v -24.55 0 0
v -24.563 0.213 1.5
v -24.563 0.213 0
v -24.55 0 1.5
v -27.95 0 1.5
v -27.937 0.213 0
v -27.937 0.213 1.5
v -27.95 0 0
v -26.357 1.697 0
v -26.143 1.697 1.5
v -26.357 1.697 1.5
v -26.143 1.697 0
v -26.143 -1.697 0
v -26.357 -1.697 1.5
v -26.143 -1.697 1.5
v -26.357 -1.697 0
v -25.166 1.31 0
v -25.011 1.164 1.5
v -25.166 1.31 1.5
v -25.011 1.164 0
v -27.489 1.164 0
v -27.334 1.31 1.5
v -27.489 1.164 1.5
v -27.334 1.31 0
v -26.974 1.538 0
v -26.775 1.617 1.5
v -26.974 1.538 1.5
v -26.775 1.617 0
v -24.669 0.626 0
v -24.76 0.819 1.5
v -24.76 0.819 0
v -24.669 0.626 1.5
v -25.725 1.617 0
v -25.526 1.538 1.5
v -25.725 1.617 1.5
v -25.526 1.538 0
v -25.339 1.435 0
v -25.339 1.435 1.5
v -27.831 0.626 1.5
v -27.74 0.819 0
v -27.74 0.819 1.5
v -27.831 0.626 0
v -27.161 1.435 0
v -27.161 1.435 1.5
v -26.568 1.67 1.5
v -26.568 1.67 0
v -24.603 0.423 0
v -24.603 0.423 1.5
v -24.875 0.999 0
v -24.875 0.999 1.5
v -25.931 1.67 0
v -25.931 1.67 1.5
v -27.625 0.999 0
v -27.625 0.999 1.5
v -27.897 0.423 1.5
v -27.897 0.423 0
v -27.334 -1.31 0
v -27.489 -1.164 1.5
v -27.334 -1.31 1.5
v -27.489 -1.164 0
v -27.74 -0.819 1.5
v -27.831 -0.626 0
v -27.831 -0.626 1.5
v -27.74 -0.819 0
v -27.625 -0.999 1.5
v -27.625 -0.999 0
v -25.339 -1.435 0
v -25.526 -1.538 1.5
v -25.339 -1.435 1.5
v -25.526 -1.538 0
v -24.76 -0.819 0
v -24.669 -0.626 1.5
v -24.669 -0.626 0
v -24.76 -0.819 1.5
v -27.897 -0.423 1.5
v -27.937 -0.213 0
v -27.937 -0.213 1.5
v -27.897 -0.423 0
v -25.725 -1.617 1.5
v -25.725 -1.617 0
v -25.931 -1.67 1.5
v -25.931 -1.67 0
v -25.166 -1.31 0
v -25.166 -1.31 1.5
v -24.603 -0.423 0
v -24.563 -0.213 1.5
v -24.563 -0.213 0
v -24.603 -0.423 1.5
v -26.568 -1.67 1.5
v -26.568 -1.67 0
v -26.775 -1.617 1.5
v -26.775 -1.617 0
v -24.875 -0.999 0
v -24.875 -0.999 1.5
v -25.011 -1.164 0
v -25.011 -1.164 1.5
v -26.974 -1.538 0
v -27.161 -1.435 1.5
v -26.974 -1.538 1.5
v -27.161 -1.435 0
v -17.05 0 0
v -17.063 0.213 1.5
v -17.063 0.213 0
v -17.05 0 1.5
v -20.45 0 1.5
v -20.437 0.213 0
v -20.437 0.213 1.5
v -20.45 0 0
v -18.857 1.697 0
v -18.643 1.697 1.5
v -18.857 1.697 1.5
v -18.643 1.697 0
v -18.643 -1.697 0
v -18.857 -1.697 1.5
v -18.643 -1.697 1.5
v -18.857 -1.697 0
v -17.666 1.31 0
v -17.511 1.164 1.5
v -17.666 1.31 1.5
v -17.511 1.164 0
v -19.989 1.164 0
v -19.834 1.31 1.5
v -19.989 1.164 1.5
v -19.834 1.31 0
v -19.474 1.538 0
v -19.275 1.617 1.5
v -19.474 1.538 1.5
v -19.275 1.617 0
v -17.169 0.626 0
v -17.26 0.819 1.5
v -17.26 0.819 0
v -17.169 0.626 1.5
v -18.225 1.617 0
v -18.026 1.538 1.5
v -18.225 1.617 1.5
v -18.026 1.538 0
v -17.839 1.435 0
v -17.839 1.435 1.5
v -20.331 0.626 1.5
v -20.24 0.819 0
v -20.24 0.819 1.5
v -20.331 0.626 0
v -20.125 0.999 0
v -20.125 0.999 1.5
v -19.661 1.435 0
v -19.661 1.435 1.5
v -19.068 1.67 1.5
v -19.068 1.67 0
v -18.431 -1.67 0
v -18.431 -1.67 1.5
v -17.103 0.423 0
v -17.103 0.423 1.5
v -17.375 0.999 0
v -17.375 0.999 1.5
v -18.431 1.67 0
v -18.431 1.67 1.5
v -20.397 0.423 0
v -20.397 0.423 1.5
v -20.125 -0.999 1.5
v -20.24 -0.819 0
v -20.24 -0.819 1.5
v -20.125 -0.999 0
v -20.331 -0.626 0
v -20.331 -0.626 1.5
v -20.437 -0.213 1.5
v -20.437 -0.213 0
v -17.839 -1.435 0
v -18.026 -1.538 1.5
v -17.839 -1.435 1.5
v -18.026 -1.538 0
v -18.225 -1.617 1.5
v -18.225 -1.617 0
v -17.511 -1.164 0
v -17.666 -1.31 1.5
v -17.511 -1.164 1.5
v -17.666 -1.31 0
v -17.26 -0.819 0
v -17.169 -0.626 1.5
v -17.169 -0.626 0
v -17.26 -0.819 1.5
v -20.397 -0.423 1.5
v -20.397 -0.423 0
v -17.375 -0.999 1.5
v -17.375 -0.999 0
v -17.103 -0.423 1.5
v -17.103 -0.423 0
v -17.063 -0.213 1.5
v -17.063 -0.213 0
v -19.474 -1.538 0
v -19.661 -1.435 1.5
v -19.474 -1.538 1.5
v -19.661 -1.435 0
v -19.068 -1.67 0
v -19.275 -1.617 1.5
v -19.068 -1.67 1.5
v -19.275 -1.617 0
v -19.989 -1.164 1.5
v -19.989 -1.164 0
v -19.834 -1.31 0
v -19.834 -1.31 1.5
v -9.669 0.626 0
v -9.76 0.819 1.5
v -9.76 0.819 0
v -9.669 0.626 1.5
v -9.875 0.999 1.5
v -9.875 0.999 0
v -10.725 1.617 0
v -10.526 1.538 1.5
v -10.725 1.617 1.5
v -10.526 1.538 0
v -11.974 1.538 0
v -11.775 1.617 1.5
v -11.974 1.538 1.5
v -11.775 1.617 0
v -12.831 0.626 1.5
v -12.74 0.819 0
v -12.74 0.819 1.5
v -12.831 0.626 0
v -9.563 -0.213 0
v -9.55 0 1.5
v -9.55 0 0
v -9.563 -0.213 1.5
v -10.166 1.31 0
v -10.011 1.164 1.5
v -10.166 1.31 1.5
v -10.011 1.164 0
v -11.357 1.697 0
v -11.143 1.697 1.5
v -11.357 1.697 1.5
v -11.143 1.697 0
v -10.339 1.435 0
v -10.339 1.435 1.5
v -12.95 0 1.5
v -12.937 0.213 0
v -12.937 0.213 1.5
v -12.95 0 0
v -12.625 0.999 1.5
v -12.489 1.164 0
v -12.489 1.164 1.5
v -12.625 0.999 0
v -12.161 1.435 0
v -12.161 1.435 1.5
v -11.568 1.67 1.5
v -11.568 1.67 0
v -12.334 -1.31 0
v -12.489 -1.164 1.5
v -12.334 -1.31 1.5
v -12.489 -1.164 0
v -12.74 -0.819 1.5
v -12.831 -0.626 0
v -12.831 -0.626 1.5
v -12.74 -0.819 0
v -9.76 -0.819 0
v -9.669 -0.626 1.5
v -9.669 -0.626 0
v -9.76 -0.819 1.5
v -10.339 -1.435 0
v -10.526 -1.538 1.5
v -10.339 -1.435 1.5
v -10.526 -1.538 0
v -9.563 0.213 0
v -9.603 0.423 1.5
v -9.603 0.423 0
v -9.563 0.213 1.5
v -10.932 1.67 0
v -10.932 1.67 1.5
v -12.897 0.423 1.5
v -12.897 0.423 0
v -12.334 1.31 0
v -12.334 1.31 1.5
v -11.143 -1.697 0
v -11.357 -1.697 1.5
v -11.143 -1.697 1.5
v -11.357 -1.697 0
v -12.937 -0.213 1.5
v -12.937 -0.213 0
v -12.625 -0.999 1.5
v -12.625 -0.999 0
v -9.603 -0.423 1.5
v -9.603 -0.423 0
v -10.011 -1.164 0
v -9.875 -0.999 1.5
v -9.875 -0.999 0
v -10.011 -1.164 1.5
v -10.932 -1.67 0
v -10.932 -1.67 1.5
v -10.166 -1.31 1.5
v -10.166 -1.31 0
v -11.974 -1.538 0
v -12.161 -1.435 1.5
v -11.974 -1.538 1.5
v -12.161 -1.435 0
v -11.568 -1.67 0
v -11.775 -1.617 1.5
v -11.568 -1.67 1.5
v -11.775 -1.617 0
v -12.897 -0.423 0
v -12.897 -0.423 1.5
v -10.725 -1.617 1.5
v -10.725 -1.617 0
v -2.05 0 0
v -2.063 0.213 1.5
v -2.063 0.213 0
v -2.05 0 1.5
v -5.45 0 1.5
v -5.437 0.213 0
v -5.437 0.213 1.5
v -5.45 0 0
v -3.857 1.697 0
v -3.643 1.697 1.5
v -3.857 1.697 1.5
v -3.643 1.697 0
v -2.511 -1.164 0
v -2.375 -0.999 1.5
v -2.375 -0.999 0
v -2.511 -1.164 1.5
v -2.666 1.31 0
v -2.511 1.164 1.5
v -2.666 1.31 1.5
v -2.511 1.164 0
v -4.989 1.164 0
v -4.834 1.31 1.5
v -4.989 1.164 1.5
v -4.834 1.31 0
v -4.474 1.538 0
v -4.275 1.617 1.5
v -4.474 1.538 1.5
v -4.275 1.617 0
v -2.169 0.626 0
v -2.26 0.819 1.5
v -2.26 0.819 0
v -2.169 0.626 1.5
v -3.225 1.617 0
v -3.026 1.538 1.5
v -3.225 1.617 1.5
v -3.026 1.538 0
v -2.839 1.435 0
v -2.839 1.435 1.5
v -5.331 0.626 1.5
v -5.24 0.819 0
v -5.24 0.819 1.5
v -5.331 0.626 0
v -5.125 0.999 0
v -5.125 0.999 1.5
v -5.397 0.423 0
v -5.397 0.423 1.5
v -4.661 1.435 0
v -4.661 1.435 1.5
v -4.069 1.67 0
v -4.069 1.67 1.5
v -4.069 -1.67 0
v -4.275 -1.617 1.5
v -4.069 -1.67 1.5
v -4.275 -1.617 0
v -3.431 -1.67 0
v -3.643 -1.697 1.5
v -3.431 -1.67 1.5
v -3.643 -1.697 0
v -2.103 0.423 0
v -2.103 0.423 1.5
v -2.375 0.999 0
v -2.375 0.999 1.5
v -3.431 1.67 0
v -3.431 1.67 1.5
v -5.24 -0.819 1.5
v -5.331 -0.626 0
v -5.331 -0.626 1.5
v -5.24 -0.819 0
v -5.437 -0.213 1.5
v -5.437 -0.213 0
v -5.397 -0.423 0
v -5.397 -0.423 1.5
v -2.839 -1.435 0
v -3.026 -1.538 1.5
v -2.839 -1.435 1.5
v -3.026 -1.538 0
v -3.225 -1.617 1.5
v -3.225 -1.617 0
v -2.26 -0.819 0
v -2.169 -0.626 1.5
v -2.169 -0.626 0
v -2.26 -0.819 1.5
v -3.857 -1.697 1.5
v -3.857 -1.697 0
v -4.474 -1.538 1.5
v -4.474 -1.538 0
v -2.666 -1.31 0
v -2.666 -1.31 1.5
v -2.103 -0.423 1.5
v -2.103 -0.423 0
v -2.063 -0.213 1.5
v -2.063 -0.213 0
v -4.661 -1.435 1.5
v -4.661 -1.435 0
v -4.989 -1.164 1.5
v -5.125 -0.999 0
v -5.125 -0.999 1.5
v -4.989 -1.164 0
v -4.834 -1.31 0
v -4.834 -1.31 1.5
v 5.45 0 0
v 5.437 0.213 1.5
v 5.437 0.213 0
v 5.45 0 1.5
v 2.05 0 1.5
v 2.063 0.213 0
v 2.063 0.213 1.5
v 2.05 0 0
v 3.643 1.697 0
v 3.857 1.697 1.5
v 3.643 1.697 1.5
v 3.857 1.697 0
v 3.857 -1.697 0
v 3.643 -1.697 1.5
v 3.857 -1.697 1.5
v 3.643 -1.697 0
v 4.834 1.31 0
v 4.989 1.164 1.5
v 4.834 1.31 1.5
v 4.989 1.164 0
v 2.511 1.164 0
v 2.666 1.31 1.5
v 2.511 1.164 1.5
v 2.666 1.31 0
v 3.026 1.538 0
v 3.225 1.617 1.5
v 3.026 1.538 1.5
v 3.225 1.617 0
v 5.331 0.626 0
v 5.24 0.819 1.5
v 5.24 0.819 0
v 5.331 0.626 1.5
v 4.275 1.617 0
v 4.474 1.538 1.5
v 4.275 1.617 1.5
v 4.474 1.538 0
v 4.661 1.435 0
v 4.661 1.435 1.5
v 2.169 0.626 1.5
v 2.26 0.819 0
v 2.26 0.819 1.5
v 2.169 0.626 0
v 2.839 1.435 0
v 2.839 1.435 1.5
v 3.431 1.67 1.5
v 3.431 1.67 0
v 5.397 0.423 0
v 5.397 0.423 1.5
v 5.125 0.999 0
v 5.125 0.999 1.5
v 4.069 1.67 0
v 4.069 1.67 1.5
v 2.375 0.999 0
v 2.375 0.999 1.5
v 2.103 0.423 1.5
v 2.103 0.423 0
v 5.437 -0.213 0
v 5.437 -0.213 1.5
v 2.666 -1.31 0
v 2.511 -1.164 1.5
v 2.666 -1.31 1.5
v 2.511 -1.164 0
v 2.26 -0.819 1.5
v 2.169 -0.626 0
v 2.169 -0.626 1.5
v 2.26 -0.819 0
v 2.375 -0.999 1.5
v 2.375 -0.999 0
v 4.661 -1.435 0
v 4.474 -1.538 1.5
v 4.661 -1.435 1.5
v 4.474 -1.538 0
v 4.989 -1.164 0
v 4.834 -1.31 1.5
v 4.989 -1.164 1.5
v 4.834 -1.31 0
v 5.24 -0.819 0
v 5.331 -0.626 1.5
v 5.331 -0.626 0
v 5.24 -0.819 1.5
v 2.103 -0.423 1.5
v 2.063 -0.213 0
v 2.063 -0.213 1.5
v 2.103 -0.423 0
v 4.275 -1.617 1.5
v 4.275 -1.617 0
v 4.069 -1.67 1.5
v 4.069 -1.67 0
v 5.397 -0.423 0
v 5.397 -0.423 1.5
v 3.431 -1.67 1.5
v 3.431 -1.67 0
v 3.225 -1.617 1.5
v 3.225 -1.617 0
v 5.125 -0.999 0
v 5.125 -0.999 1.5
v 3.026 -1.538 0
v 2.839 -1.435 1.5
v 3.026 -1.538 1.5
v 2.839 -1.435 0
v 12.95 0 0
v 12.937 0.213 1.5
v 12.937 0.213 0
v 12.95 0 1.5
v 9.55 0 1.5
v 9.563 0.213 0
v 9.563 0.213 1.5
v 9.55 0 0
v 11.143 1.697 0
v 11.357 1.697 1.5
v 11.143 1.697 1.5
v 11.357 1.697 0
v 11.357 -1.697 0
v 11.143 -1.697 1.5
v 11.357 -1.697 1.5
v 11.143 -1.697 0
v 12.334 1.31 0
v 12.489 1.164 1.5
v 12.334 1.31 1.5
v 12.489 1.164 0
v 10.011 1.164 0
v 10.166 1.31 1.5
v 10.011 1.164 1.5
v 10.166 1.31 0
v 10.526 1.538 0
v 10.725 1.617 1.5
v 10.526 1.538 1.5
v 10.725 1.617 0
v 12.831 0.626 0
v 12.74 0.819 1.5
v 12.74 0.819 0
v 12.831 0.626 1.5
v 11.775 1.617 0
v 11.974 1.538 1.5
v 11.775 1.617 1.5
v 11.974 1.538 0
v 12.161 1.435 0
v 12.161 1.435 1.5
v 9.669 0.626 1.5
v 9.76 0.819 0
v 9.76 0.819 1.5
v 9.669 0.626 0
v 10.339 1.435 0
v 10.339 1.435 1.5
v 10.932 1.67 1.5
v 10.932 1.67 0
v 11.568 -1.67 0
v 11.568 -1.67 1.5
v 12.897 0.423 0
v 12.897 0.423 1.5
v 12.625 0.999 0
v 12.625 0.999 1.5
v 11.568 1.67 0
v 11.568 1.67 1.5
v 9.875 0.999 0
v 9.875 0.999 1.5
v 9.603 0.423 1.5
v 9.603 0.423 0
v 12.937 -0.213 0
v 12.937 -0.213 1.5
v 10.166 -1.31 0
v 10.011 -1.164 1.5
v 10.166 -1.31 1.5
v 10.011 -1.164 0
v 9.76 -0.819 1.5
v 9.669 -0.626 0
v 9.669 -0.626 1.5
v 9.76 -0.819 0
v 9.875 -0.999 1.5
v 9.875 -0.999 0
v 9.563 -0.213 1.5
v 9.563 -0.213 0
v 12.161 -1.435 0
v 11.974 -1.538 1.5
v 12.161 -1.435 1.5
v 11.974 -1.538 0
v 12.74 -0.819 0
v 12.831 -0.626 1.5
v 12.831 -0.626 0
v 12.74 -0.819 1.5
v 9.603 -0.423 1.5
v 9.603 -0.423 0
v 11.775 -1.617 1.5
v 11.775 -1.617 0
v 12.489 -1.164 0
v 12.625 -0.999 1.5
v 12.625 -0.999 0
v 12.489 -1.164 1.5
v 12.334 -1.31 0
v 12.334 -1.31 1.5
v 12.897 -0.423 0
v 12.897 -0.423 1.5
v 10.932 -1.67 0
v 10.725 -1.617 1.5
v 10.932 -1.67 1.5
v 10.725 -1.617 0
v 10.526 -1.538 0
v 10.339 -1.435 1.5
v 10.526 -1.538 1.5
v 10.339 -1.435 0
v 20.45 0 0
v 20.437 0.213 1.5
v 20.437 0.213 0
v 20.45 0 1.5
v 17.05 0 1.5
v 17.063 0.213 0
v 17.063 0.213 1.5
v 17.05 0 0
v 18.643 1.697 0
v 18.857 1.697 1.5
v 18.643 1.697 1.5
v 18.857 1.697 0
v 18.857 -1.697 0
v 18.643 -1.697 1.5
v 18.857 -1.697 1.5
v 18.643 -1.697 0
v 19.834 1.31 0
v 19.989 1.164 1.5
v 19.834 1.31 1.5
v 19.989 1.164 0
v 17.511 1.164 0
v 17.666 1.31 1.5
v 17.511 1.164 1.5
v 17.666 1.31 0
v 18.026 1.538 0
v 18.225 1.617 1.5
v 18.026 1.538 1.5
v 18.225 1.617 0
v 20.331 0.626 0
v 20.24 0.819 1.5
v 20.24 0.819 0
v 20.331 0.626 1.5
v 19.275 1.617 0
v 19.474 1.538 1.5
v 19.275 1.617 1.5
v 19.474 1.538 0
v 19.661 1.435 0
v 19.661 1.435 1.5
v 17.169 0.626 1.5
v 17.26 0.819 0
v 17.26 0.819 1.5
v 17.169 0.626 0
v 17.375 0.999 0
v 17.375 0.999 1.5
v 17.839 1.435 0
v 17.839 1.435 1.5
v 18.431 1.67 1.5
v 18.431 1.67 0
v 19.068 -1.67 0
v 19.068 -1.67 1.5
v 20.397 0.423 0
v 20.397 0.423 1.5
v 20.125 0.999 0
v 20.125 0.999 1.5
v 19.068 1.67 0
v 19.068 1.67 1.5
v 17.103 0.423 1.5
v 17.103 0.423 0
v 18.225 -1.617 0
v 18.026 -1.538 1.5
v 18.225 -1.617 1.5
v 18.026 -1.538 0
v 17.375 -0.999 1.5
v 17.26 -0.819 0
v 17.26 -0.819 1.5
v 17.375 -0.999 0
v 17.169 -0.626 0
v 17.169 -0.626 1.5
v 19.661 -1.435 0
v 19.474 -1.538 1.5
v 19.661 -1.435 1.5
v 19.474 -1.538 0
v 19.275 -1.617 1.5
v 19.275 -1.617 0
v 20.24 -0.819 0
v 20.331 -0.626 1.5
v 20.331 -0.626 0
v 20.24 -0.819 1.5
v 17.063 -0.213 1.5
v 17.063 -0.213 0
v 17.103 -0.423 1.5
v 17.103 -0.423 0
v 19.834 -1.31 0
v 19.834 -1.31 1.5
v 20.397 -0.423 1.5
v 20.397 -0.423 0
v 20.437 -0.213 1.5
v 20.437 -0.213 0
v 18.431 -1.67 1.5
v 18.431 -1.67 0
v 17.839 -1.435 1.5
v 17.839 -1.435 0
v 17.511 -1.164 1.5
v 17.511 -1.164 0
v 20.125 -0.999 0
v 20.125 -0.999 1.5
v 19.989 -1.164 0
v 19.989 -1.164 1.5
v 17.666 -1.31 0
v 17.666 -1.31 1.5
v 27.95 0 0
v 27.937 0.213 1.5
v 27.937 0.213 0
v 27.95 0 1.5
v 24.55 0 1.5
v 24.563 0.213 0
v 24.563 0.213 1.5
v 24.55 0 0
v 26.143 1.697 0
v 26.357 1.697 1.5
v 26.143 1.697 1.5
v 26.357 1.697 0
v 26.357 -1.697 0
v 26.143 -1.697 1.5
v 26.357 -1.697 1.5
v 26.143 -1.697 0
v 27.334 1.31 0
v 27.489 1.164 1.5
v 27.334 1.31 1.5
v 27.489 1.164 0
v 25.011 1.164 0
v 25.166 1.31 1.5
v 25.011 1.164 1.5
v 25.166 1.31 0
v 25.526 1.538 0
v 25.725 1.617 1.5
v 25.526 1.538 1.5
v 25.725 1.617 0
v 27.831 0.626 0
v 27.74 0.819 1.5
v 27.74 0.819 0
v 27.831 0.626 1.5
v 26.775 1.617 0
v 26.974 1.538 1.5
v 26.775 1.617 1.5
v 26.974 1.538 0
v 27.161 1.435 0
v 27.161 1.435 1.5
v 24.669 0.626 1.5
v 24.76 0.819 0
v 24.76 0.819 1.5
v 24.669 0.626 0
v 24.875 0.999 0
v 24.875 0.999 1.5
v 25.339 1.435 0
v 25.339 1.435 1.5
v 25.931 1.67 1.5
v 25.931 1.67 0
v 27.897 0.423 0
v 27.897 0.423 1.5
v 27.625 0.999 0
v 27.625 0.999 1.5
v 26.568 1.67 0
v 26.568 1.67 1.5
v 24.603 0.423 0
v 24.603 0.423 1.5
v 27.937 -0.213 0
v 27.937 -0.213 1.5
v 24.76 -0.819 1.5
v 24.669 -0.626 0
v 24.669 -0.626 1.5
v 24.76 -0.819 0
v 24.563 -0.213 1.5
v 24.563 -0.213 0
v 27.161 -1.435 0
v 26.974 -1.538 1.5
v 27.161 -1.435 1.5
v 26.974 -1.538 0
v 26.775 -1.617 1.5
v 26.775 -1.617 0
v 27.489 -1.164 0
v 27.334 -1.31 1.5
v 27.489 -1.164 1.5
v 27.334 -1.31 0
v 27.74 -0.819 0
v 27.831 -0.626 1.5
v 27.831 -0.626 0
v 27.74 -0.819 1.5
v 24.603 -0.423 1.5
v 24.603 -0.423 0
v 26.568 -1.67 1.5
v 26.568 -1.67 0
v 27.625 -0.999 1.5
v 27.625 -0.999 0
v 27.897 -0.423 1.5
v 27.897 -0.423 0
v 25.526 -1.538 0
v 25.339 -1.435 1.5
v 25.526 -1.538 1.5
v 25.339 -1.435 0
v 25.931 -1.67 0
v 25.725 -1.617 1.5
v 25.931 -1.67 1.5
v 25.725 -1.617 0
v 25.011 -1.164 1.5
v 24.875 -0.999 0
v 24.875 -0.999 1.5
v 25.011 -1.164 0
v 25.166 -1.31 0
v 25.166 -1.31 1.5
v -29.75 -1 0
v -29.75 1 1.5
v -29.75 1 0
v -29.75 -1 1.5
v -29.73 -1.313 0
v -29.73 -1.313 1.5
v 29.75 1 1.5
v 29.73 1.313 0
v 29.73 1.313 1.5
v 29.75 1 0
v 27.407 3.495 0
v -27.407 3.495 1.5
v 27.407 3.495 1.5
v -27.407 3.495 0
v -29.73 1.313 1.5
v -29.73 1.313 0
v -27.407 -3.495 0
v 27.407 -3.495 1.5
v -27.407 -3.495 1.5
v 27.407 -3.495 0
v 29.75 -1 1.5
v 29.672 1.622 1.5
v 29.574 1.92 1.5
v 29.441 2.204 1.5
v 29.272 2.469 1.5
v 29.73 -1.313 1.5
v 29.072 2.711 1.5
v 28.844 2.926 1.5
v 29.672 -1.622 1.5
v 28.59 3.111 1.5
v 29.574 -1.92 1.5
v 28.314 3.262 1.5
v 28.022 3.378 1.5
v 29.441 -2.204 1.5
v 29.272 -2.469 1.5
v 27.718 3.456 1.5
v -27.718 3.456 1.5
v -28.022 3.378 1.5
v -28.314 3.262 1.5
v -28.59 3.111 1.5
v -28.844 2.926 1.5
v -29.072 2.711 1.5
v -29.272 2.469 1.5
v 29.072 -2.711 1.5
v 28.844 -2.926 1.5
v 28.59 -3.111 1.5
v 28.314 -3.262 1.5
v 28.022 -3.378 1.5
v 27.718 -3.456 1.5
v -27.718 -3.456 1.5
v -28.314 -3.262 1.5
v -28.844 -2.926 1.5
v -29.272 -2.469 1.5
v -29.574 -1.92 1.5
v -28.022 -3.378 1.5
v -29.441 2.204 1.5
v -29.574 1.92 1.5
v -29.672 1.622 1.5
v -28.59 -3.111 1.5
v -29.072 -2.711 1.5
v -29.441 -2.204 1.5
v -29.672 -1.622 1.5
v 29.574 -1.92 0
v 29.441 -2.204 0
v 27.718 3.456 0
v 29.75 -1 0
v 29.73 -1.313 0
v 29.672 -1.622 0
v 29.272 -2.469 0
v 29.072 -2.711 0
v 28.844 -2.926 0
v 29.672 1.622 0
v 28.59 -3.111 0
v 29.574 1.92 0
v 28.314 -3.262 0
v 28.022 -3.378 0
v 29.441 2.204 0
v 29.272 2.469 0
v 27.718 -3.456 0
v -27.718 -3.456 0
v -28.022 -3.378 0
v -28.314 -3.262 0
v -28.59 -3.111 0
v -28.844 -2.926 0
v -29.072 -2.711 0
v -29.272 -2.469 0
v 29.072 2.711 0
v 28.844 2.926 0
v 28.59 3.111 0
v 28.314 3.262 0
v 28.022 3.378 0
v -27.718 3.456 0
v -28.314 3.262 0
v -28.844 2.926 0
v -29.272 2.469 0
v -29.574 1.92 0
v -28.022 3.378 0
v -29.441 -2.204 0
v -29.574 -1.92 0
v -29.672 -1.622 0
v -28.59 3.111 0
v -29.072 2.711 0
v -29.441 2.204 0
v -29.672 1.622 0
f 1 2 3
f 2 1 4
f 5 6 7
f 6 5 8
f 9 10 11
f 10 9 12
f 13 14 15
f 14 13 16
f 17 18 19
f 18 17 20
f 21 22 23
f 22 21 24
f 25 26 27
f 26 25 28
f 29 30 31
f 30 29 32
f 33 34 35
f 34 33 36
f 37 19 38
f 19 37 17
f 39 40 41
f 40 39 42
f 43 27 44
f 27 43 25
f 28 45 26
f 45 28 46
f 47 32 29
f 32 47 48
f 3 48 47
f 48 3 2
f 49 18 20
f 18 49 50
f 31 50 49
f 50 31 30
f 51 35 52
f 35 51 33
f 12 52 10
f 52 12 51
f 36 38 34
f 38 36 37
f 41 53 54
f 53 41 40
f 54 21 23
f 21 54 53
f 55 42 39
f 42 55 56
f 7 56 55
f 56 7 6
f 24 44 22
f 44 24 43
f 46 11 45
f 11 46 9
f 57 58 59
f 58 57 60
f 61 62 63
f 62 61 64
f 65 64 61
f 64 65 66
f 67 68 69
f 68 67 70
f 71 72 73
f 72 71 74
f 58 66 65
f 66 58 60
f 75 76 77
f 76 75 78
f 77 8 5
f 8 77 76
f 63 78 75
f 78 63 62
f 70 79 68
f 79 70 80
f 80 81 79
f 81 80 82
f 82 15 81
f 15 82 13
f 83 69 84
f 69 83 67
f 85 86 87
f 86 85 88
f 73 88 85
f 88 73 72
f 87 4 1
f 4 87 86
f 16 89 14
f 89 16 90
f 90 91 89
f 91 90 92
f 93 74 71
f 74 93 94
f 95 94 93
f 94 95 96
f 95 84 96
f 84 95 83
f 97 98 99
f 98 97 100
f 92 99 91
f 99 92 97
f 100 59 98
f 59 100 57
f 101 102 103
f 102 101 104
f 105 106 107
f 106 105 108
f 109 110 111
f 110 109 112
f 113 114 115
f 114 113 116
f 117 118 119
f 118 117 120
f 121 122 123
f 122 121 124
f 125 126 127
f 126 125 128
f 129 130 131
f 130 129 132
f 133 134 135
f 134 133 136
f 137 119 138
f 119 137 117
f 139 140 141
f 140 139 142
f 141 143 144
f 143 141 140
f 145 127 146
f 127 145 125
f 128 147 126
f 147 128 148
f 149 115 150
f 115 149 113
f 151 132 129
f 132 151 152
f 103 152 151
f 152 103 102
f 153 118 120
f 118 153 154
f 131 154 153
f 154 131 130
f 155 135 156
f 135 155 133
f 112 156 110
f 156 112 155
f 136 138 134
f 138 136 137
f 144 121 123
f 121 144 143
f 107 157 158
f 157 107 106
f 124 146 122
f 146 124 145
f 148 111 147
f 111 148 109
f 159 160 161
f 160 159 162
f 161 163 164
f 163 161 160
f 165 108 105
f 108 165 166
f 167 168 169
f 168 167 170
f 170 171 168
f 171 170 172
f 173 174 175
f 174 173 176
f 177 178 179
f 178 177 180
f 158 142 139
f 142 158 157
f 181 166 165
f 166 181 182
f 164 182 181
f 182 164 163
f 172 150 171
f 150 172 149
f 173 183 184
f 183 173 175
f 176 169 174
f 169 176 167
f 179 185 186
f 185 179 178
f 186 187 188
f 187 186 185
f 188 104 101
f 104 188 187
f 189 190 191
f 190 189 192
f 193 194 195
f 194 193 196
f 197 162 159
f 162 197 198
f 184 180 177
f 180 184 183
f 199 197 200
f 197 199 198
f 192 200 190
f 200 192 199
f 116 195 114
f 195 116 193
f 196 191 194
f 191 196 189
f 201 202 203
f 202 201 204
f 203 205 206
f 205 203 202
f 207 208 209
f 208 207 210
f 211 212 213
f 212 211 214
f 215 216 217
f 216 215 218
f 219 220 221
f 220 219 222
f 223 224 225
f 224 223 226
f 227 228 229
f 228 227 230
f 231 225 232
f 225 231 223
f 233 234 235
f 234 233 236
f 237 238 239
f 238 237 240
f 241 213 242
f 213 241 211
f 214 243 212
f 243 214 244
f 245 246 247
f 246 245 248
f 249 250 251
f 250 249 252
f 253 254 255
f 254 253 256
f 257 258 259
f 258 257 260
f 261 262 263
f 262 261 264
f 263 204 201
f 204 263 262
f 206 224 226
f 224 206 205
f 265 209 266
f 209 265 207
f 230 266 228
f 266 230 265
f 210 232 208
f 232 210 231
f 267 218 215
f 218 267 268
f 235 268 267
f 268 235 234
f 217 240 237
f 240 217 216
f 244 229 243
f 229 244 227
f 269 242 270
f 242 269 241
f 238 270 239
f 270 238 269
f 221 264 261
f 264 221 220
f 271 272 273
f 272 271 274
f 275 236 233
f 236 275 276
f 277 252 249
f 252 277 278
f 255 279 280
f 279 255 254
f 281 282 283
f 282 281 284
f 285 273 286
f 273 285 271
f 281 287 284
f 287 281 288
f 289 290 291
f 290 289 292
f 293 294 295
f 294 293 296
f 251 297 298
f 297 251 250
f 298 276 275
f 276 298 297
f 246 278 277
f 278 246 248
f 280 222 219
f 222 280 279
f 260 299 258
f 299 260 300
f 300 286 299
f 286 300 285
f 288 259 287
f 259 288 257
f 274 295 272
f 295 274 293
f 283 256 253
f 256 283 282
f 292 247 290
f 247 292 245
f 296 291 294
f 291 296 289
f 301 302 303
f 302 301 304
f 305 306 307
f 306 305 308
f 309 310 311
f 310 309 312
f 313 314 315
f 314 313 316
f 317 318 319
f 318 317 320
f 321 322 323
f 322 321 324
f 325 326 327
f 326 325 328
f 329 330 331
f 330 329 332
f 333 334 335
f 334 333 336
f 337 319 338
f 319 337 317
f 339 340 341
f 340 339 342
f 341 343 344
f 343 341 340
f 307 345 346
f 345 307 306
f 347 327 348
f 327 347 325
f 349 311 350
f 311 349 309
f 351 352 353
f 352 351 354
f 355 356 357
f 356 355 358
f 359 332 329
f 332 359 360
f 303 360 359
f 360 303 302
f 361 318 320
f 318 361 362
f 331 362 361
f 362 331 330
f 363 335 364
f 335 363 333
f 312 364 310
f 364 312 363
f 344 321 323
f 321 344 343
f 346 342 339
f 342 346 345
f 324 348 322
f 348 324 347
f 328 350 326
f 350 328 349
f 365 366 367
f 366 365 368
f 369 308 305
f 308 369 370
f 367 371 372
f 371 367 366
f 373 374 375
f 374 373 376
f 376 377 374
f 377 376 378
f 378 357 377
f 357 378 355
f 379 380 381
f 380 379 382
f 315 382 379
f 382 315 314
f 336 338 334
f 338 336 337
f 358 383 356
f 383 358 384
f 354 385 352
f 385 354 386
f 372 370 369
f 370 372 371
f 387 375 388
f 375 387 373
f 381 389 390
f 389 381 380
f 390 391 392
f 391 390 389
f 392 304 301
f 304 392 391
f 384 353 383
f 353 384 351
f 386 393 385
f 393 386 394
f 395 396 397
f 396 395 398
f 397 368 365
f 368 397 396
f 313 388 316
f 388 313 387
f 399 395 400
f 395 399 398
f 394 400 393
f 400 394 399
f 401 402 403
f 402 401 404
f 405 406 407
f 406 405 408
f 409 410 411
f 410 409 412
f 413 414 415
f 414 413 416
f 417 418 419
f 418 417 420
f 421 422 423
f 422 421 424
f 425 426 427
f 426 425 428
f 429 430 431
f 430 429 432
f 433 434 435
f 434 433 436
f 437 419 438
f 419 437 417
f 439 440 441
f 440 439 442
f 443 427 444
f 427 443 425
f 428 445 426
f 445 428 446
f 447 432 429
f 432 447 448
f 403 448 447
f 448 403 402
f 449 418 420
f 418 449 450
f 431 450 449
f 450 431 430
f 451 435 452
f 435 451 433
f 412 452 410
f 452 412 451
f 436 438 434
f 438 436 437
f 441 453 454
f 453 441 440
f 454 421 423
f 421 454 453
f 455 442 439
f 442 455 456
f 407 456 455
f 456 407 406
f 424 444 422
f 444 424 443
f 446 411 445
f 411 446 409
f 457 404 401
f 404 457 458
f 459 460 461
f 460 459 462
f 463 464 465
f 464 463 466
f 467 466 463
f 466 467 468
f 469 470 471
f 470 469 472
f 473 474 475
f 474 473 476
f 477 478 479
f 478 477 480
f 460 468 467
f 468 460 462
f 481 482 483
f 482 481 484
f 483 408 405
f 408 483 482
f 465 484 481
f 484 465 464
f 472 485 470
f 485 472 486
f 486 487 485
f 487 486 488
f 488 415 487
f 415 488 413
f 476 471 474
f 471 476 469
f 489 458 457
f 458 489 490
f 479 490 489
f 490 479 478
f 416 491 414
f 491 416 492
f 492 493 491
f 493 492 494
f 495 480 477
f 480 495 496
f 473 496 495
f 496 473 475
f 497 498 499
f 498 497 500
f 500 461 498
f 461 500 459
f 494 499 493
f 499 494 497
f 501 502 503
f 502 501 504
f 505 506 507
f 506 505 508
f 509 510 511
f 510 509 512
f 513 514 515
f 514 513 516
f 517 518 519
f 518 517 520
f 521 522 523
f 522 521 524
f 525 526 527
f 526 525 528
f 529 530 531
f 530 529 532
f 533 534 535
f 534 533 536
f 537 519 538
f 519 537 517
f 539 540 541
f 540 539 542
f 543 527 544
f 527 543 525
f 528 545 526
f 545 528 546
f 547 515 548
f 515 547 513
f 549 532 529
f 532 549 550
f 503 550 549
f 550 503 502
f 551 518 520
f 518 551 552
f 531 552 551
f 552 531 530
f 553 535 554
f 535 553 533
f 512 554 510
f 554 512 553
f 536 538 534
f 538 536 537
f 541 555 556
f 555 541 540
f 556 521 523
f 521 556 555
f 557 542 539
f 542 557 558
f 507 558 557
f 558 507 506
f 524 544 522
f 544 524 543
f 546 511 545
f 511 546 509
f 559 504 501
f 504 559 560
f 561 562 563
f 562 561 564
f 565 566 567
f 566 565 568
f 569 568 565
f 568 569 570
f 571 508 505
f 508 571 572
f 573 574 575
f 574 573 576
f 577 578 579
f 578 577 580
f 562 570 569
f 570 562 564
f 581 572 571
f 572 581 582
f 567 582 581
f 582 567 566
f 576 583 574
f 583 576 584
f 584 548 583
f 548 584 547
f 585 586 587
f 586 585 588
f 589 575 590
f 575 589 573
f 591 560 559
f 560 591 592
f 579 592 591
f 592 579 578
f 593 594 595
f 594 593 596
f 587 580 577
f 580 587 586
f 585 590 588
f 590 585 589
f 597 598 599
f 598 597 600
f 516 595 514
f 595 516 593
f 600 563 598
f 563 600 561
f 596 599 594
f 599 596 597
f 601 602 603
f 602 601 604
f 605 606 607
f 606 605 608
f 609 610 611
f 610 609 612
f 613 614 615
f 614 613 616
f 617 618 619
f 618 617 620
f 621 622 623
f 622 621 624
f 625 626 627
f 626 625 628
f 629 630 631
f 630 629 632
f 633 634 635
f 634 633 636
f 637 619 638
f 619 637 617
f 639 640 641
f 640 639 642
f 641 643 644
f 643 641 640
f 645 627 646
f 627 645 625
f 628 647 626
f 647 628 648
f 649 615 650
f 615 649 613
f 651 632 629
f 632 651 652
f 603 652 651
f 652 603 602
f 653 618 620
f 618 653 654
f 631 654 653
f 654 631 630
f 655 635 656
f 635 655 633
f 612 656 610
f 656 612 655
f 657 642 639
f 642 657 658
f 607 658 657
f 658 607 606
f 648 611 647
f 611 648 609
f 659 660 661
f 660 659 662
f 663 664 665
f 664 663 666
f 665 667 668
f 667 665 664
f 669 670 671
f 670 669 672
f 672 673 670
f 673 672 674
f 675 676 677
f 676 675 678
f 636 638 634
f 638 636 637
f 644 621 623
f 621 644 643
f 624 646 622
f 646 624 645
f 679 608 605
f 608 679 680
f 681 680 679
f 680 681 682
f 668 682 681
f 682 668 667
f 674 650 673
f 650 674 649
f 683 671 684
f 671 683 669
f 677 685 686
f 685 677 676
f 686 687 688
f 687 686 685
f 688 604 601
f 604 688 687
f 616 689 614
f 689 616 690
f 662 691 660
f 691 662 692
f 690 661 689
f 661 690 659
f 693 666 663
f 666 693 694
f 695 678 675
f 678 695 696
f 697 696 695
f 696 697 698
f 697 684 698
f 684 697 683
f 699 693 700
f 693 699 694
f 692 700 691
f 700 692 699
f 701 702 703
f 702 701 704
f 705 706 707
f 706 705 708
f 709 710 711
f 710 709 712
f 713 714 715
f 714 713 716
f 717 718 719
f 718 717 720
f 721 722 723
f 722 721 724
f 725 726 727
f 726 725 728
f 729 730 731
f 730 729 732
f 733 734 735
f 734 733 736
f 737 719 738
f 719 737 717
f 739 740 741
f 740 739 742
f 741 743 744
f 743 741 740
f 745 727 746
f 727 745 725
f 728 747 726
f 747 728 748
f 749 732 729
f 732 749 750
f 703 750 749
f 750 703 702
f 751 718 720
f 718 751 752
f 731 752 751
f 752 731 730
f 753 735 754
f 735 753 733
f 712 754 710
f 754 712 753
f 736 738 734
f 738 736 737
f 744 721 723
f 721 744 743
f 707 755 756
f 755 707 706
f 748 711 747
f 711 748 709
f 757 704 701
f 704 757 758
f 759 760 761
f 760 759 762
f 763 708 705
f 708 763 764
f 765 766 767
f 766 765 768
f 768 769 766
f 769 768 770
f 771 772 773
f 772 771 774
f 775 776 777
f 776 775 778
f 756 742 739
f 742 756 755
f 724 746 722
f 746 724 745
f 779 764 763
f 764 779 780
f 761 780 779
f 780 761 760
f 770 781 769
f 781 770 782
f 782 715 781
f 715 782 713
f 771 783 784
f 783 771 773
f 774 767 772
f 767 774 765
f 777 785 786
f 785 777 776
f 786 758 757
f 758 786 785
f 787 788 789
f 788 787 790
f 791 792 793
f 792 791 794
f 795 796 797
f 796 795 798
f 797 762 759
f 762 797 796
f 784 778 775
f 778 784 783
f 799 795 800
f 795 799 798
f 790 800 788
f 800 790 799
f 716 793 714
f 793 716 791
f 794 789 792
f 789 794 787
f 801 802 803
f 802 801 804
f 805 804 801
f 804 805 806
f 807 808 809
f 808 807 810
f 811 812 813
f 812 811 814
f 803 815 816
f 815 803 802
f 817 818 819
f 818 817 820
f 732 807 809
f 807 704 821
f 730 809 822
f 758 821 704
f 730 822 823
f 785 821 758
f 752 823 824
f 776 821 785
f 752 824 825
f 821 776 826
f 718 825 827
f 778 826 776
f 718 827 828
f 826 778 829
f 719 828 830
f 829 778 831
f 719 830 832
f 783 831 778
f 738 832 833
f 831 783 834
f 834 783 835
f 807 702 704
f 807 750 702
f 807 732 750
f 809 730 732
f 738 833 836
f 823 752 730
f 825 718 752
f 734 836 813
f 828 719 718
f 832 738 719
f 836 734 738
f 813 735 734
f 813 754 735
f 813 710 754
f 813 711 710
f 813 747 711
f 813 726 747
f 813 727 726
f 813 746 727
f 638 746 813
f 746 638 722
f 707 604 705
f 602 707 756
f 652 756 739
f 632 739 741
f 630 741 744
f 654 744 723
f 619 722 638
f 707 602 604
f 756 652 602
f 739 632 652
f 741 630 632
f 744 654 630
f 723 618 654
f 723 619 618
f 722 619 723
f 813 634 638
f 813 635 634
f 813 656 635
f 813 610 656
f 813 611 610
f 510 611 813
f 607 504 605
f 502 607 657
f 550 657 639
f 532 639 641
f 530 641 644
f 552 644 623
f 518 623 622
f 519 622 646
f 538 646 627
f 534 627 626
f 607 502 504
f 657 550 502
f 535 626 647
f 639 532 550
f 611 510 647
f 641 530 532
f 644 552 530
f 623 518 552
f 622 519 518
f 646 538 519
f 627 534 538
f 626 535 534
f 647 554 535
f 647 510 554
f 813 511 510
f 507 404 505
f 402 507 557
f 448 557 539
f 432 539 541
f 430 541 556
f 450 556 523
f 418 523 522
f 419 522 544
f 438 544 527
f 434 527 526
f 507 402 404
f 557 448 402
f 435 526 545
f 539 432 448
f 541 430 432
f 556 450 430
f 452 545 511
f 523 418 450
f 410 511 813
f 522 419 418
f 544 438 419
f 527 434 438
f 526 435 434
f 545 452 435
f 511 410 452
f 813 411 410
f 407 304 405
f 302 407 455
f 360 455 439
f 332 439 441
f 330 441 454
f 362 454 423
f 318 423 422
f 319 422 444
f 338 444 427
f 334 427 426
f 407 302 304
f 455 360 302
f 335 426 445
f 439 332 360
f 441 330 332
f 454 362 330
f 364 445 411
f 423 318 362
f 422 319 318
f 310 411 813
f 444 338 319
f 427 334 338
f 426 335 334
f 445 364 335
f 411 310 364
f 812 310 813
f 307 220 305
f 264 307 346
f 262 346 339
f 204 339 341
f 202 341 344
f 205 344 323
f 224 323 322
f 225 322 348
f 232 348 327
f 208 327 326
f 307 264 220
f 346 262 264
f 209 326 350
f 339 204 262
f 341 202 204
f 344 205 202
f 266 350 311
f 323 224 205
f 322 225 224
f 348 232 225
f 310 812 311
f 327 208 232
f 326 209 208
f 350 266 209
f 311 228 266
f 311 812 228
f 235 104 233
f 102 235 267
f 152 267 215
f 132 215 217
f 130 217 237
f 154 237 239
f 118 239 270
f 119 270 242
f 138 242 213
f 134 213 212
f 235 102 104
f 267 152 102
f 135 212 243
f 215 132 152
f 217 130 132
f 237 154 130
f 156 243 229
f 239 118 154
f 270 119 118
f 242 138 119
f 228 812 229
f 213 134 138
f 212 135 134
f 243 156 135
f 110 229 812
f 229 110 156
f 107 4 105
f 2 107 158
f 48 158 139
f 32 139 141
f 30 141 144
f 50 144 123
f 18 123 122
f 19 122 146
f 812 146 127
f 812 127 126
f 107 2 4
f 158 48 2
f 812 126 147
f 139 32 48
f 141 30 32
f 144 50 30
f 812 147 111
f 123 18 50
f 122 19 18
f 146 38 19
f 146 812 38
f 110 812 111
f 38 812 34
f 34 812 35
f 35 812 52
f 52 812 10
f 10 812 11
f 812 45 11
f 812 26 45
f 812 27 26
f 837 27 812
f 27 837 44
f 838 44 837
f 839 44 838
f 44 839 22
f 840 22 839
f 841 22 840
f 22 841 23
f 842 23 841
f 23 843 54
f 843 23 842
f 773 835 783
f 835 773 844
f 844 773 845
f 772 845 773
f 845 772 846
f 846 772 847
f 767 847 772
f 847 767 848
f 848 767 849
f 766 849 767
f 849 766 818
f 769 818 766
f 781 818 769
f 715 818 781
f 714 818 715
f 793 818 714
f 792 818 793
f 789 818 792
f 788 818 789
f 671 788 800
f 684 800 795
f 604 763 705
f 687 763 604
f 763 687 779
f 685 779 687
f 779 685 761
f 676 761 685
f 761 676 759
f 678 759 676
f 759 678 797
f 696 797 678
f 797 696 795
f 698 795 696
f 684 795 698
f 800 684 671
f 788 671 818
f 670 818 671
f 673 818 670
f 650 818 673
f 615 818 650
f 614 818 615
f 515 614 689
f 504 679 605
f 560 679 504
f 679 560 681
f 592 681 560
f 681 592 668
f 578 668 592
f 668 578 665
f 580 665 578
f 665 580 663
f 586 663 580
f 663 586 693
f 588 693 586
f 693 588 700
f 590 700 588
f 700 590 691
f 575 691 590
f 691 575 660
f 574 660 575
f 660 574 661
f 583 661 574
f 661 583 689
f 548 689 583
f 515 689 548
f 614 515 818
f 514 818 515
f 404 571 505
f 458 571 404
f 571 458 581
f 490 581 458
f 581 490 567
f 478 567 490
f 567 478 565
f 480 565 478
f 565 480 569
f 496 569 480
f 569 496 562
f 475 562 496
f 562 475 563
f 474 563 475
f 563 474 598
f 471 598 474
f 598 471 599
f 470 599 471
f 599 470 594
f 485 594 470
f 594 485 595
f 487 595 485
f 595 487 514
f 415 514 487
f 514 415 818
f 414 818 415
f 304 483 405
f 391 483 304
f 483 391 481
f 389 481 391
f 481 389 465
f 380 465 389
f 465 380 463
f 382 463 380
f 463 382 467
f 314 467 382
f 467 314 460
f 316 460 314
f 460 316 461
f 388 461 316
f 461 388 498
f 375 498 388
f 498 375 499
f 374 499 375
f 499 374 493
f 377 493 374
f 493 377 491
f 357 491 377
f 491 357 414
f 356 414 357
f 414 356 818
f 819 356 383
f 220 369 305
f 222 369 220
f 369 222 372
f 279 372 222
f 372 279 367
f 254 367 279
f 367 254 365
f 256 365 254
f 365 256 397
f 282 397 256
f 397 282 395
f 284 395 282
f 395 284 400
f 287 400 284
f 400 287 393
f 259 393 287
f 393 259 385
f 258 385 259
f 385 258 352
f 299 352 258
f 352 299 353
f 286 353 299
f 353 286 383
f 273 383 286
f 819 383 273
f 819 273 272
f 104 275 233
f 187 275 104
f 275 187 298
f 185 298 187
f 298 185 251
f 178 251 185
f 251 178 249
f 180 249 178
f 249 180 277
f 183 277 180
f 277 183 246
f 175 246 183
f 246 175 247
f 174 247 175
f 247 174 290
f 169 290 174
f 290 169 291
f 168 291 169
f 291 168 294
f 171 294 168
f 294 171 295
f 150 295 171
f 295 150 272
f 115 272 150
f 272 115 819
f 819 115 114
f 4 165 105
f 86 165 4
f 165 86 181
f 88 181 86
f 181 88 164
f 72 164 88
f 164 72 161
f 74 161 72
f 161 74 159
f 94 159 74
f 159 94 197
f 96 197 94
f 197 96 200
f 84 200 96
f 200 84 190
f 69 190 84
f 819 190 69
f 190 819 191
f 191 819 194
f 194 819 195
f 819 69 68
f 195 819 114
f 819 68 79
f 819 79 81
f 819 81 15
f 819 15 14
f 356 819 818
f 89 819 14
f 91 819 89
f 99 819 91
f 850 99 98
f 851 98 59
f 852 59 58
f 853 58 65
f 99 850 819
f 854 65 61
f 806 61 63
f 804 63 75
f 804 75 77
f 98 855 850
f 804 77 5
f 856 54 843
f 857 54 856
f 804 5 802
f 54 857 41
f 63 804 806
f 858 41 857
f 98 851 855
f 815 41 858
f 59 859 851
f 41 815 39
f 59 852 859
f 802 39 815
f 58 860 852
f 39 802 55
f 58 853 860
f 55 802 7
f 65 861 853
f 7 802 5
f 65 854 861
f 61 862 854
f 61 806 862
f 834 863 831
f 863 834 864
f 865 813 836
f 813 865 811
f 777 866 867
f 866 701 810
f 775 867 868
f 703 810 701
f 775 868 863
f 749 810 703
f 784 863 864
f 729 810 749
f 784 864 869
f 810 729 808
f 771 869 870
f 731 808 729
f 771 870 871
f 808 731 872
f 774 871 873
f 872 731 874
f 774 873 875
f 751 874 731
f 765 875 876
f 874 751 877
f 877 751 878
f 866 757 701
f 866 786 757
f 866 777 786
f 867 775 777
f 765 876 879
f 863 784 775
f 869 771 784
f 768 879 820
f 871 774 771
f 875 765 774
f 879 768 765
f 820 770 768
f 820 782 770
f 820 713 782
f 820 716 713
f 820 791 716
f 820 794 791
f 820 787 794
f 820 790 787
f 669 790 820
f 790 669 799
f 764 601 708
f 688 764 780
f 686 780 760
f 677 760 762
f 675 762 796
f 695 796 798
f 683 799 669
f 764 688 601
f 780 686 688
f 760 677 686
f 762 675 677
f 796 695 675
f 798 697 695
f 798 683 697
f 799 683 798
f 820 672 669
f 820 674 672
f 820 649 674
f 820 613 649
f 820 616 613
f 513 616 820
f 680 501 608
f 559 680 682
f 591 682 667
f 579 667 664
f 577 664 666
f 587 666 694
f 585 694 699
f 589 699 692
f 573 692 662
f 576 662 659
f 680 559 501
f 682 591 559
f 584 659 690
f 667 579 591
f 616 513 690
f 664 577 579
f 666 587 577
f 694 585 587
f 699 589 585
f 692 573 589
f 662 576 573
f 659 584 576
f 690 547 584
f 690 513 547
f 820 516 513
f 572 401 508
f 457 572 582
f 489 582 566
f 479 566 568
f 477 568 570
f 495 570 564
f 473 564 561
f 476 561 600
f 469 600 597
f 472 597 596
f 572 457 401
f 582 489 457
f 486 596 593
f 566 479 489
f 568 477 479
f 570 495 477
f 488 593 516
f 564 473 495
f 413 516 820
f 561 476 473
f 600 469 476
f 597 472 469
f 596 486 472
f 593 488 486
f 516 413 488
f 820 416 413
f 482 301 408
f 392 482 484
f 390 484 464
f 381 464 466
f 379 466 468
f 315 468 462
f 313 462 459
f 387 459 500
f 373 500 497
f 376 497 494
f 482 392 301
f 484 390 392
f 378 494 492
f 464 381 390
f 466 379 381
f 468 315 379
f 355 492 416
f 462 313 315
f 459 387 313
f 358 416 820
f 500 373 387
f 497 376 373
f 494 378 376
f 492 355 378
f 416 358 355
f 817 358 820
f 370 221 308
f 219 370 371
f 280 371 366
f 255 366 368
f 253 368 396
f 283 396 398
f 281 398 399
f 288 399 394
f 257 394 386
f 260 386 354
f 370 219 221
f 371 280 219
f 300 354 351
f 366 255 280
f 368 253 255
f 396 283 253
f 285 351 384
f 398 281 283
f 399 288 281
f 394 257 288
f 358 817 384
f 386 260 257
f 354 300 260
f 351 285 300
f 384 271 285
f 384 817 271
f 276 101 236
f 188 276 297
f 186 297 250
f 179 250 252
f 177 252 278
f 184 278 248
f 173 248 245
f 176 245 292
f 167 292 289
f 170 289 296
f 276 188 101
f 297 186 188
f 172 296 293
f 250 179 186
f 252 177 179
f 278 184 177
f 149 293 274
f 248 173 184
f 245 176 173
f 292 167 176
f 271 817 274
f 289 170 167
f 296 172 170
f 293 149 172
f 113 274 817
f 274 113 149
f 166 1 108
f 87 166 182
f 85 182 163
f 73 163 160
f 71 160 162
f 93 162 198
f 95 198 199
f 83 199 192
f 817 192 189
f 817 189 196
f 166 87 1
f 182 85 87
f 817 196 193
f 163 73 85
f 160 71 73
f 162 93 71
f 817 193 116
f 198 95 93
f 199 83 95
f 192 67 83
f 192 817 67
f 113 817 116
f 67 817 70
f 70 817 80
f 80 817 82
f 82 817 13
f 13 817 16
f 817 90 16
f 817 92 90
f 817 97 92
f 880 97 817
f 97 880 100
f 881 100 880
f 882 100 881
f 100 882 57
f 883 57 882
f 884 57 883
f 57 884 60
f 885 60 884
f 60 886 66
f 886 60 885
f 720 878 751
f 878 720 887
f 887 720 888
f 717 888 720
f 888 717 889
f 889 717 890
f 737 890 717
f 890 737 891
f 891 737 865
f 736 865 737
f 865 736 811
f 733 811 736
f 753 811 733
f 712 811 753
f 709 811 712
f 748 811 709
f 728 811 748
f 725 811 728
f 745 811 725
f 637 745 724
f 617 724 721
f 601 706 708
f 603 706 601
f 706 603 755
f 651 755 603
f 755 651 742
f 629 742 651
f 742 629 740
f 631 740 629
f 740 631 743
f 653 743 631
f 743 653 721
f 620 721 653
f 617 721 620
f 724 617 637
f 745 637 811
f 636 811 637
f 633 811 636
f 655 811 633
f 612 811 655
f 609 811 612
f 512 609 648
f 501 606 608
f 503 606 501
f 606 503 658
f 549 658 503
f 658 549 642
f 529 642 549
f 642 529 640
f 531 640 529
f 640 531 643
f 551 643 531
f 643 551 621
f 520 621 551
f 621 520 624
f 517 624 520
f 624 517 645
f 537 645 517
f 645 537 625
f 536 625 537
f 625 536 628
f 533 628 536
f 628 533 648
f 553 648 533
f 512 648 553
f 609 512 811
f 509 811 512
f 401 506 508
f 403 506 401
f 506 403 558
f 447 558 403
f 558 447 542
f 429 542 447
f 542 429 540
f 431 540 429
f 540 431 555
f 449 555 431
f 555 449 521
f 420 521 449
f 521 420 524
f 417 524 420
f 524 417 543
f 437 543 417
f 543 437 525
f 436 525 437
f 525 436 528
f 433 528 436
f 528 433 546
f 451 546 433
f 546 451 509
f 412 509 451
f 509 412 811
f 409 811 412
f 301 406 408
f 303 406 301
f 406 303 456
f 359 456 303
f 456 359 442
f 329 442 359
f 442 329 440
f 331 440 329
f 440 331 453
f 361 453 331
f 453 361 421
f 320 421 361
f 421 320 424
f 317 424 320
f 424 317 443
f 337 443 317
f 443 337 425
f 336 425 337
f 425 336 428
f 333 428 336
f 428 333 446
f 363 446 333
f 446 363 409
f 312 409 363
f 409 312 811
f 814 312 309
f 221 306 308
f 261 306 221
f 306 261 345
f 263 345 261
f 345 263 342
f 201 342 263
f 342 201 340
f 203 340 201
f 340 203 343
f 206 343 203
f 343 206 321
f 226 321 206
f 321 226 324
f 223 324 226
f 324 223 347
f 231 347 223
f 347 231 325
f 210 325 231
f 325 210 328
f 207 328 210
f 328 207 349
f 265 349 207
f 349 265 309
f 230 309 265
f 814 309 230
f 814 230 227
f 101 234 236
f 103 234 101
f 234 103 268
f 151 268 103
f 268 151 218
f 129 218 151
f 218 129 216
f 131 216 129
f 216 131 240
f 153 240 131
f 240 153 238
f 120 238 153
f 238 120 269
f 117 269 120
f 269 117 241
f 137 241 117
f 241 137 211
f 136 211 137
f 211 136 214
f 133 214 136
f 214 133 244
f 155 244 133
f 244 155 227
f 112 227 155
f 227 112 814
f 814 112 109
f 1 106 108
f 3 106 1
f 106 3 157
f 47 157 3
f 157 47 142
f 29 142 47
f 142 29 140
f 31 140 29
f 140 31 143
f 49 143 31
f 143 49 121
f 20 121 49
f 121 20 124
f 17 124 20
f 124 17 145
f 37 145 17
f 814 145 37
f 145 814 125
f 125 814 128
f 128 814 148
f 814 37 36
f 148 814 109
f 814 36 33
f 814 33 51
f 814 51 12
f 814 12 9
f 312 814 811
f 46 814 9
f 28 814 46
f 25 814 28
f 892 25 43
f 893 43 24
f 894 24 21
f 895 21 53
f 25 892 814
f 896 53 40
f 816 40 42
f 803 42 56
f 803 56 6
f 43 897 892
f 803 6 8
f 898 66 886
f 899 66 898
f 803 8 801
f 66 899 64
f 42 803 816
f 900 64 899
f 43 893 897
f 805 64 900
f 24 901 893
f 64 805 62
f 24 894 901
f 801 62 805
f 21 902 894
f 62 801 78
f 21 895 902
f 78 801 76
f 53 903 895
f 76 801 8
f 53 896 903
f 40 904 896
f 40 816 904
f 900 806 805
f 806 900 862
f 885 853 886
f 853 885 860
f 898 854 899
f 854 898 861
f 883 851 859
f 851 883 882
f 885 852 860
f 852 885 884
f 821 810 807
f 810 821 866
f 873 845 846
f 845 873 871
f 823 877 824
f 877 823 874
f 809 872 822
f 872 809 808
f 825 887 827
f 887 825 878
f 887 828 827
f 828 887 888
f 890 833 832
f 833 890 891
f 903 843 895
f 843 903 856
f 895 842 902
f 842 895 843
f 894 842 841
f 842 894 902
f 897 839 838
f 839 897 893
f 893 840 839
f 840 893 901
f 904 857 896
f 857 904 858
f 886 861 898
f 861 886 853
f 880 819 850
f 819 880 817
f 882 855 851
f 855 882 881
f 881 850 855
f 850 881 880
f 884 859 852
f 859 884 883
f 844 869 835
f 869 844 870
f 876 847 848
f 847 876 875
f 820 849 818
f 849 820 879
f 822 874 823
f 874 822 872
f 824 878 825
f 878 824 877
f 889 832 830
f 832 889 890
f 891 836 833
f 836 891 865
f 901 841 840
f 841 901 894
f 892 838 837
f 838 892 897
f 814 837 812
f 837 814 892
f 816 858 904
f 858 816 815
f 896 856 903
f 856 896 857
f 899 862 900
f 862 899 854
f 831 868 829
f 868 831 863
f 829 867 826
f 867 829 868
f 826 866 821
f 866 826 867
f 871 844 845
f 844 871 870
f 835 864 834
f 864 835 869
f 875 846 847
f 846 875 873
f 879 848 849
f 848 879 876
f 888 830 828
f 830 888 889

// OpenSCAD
$fn = 50;


difference() {
	union() {
		translate(v = [0, 0, 0]) {
			rotate(a = [0, 0, 0]) {
				hull() {
					translate(v = [-27.2500000000, 1.0000000000, 0]) {
						rotate(a = [0, 0, 0]) {
							translate(v = [0, 0, 0]) {
								rotate(a = [0, 0, 0]) {
									cylinder(h = 1.5000000000, r = 2.5000000000);
								}
							}
						}
					}
					translate(v = [27.2500000000, 1.0000000000, 0]) {
						rotate(a = [0, 0, 0]) {
							translate(v = [0, 0, 0]) {
								rotate(a = [0, 0, 0]) {
									cylinder(h = 1.5000000000, r = 2.5000000000);
								}
							}
						}
					}
					translate(v = [-27.2500000000, -1.0000000000, 0]) {
						rotate(a = [0, 0, 0]) {
							translate(v = [0, 0, 0]) {
								rotate(a = [0, 0, 0]) {
									cylinder(h = 1.5000000000, r = 2.5000000000);
								}
							}
						}
					}
					translate(v = [27.2500000000, -1.0000000000, 0]) {
						rotate(a = [0, 0, 0]) {
							translate(v = [0, 0, 0]) {
								rotate(a = [0, 0, 0]) {
									cylinder(h = 1.5000000000, r = 2.5000000000);
								}
							}
						}
					}
				}
			}
		}
	}
	union() {
		translate(v = [-26.2500000000, 0.0000000000, 0]) {
			rotate(a = [0, 0, 0]) {
				translate(v = [0, 0, -50]) {
					rotate(a = [0, 0, 0]) {
						cylinder(h = 100, r = 1.7000000000);
					}
				}
			}
		}
		translate(v = [-18.7500000000, 0.0000000000, 0]) {
			rotate(a = [0, 0, 0]) {
				translate(v = [0, 0, -50]) {
					rotate(a = [0, 0, 0]) {
						cylinder(h = 100, r = 1.7000000000);
					}
				}
			}
		}
		translate(v = [-11.2500000000, 0.0000000000, 0]) {
			rotate(a = [0, 0, 0]) {
				translate(v = [0, 0, -50]) {
					rotate(a = [0, 0, 0]) {
						cylinder(h = 100, r = 1.7000000000);
					}
				}
			}
		}
		translate(v = [-3.7500000000, 0.0000000000, 0]) {
			rotate(a = [0, 0, 0]) {
				translate(v = [0, 0, -50]) {
					rotate(a = [0, 0, 0]) {
						cylinder(h = 100, r = 1.7000000000);
					}
				}
			}
		}
		translate(v = [3.7500000000, 0.0000000000, 0]) {
			rotate(a = [0, 0, 0]) {
				translate(v = [0, 0, -50]) {
					rotate(a = [0, 0, 0]) {
						cylinder(h = 100, r = 1.7000000000);
					}
				}
			}
		}
		translate(v = [11.2500000000, 0.0000000000, 0]) {
			rotate(a = [0, 0, 0]) {
				translate(v = [0, 0, -50]) {
					rotate(a = [0, 0, 0]) {
						cylinder(h = 100, r = 1.7000000000);
					}
				}
			}
		}
		translate(v = [18.7500000000, 0.0000000000, 0]) {
			rotate(a = [0, 0, 0]) {
				translate(v = [0, 0, -50]) {
					rotate(a = [0, 0, 0]) {
						cylinder(h = 100, r = 1.7000000000);
					}
				}
			}
		}
		translate(v = [26.2500000000, 0.0000000000, 0]) {
			rotate(a = [0, 0, 0]) {
				translate(v = [0, 0, -50]) {
					rotate(a = [0, 0, 0]) {
						cylinder(h = 100, r = 1.7000000000);
					}
				}
			}
		}
	}
}
